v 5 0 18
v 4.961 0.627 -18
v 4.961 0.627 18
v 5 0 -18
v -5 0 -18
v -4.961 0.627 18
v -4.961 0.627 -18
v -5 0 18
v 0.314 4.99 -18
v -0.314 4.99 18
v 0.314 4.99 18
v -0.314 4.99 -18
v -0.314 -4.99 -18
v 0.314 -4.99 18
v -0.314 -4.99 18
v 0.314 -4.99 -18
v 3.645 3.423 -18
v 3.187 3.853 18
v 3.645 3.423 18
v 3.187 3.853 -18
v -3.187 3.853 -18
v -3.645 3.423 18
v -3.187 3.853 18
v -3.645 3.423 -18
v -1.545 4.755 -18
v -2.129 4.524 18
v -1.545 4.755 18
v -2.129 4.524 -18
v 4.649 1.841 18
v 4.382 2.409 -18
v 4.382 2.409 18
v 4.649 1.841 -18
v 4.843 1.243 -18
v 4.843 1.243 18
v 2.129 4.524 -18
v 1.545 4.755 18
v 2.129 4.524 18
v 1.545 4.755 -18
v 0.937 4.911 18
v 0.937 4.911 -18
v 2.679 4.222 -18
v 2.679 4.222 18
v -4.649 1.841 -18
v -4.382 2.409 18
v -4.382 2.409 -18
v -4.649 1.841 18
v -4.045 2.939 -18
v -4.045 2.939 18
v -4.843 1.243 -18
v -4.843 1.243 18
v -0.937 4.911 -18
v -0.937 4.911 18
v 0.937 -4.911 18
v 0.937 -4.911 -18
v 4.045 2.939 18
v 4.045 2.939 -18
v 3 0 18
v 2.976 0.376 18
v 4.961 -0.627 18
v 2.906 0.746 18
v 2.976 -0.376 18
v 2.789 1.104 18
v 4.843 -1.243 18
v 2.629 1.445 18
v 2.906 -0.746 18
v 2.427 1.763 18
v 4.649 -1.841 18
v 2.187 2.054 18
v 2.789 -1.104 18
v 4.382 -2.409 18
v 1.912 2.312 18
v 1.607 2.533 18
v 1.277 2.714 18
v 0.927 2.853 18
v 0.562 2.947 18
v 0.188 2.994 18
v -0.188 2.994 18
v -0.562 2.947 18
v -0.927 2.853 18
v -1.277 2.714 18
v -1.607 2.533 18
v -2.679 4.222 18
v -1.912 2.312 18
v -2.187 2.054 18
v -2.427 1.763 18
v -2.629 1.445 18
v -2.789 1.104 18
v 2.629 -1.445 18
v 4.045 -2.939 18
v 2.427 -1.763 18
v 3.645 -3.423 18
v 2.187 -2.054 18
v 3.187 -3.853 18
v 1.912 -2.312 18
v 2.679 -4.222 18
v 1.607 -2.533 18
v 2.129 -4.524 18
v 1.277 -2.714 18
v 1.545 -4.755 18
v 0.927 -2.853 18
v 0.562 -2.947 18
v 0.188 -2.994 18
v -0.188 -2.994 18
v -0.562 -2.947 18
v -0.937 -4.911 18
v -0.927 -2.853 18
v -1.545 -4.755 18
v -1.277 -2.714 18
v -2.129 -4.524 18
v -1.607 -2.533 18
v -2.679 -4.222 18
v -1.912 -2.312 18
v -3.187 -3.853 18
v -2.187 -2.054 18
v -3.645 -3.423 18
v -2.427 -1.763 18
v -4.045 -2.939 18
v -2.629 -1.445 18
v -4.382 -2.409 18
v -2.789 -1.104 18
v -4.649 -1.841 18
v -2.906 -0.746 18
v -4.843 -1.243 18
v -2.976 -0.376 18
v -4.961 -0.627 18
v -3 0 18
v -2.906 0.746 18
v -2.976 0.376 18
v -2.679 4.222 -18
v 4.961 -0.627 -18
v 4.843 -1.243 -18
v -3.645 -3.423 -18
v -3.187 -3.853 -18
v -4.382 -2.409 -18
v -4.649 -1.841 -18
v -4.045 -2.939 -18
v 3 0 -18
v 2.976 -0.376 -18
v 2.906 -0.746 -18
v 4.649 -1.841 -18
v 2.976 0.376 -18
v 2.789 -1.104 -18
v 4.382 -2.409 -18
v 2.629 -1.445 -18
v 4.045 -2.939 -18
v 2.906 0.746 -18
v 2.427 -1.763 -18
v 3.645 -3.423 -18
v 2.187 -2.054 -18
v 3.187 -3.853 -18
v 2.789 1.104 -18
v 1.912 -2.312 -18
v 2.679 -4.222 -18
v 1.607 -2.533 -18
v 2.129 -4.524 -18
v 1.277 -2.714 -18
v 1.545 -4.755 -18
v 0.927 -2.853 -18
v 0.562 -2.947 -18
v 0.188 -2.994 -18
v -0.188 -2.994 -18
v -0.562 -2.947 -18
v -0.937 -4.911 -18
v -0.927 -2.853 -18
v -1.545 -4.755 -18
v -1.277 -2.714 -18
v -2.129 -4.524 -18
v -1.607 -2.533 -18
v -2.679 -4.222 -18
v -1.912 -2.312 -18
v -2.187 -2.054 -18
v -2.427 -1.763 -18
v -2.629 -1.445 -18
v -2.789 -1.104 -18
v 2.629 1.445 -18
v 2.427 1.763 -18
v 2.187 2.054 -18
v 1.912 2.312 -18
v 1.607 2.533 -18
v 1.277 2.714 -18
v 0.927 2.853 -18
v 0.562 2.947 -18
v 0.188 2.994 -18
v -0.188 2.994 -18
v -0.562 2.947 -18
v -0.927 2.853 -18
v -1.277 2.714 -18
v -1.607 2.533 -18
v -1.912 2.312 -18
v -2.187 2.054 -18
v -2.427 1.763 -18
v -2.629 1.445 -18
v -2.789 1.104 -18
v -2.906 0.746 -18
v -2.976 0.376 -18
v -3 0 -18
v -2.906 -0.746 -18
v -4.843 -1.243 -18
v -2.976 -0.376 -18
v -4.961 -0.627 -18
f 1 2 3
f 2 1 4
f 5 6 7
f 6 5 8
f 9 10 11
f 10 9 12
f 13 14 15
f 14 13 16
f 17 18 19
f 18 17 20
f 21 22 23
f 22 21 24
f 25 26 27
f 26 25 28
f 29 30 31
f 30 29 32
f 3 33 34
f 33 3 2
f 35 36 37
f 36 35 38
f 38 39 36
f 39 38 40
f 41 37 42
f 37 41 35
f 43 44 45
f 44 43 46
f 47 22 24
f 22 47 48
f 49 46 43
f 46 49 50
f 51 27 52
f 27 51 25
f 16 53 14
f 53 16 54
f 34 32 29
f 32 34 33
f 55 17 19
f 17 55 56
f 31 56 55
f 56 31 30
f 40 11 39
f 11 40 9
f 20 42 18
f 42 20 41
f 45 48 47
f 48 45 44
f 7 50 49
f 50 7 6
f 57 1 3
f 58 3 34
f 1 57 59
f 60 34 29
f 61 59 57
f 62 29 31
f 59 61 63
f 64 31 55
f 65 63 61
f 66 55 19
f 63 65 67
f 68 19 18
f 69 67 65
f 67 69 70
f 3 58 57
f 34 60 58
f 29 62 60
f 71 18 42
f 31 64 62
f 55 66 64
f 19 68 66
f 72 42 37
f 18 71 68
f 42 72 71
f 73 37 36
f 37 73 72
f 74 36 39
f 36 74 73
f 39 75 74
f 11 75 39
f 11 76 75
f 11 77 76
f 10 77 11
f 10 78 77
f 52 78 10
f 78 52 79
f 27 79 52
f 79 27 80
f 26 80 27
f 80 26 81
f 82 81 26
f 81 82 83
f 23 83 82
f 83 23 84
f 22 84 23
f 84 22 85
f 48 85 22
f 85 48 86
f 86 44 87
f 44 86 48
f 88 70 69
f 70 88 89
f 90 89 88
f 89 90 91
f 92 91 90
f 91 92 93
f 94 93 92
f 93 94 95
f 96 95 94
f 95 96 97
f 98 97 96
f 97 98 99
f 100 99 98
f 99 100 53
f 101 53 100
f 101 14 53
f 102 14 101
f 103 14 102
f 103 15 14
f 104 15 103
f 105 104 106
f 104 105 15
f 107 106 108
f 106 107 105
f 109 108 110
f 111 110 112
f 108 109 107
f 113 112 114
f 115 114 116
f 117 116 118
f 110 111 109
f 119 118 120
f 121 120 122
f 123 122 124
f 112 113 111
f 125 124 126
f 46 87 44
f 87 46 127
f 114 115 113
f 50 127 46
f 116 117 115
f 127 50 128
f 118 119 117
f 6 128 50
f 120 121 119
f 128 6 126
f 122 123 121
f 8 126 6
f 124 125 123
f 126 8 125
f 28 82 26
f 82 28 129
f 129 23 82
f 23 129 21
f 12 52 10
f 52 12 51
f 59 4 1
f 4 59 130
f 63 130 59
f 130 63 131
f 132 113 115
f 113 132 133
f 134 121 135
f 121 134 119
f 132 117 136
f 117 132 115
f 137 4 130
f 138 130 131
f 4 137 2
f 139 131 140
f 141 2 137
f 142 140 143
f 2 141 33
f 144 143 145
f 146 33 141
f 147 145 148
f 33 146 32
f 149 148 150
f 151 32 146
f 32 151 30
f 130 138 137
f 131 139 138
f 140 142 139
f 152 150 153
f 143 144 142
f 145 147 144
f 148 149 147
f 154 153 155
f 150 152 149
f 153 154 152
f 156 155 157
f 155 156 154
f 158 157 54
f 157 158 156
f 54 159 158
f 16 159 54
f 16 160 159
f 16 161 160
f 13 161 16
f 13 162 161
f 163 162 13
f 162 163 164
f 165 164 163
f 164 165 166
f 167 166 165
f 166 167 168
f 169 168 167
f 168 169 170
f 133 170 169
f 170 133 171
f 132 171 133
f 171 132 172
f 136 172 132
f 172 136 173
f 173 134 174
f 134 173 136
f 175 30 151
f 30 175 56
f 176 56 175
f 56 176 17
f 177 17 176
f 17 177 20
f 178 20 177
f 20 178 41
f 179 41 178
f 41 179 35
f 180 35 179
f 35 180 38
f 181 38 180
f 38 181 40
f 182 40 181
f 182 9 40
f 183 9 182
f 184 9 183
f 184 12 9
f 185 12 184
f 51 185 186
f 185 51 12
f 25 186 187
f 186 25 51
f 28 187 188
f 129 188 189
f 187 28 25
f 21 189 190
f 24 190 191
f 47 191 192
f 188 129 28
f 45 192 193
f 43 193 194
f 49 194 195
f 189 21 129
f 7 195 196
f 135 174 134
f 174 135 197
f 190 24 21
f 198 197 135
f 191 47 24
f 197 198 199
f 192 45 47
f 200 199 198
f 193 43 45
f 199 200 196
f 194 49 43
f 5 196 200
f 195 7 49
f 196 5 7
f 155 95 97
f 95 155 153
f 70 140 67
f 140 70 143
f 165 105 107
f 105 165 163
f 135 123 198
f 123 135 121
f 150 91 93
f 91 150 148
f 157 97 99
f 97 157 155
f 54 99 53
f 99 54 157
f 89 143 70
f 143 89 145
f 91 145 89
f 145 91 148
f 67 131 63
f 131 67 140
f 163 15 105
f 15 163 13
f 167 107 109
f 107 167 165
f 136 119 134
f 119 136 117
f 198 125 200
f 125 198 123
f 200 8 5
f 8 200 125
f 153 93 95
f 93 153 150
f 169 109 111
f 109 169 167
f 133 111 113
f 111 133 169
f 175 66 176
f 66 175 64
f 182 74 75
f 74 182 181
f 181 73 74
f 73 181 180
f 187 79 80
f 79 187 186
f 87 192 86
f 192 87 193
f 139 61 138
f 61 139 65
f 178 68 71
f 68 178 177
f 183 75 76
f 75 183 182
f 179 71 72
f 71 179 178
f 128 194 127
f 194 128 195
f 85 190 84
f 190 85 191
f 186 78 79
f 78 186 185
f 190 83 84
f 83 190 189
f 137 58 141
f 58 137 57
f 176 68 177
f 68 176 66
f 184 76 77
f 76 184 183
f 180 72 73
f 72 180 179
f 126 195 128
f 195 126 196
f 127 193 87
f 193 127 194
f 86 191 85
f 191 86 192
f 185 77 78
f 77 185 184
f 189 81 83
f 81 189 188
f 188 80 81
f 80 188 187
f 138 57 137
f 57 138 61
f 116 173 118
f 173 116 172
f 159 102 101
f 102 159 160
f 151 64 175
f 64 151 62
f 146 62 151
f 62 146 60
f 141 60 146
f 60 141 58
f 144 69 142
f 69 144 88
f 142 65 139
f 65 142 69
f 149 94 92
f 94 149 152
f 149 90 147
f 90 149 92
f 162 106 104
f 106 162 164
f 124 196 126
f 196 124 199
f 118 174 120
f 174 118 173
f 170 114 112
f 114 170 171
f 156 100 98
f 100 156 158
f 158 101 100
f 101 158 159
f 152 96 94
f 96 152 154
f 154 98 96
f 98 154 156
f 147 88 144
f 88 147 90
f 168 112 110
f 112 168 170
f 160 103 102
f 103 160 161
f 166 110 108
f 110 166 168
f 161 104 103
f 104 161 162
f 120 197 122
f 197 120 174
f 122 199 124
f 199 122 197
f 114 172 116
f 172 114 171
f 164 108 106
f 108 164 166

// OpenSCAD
$fn = 50;


difference() {
	union() {
		translate(v = [0, 0, -18.0000000000]) {
			cylinder(h = 36, r = 5.0000000000);
		}
	}
	union() {
		translate(v = [0, 0, -100.0000000000]) {
			cylinder(h = 200, r = 3);
		}
	}
}
